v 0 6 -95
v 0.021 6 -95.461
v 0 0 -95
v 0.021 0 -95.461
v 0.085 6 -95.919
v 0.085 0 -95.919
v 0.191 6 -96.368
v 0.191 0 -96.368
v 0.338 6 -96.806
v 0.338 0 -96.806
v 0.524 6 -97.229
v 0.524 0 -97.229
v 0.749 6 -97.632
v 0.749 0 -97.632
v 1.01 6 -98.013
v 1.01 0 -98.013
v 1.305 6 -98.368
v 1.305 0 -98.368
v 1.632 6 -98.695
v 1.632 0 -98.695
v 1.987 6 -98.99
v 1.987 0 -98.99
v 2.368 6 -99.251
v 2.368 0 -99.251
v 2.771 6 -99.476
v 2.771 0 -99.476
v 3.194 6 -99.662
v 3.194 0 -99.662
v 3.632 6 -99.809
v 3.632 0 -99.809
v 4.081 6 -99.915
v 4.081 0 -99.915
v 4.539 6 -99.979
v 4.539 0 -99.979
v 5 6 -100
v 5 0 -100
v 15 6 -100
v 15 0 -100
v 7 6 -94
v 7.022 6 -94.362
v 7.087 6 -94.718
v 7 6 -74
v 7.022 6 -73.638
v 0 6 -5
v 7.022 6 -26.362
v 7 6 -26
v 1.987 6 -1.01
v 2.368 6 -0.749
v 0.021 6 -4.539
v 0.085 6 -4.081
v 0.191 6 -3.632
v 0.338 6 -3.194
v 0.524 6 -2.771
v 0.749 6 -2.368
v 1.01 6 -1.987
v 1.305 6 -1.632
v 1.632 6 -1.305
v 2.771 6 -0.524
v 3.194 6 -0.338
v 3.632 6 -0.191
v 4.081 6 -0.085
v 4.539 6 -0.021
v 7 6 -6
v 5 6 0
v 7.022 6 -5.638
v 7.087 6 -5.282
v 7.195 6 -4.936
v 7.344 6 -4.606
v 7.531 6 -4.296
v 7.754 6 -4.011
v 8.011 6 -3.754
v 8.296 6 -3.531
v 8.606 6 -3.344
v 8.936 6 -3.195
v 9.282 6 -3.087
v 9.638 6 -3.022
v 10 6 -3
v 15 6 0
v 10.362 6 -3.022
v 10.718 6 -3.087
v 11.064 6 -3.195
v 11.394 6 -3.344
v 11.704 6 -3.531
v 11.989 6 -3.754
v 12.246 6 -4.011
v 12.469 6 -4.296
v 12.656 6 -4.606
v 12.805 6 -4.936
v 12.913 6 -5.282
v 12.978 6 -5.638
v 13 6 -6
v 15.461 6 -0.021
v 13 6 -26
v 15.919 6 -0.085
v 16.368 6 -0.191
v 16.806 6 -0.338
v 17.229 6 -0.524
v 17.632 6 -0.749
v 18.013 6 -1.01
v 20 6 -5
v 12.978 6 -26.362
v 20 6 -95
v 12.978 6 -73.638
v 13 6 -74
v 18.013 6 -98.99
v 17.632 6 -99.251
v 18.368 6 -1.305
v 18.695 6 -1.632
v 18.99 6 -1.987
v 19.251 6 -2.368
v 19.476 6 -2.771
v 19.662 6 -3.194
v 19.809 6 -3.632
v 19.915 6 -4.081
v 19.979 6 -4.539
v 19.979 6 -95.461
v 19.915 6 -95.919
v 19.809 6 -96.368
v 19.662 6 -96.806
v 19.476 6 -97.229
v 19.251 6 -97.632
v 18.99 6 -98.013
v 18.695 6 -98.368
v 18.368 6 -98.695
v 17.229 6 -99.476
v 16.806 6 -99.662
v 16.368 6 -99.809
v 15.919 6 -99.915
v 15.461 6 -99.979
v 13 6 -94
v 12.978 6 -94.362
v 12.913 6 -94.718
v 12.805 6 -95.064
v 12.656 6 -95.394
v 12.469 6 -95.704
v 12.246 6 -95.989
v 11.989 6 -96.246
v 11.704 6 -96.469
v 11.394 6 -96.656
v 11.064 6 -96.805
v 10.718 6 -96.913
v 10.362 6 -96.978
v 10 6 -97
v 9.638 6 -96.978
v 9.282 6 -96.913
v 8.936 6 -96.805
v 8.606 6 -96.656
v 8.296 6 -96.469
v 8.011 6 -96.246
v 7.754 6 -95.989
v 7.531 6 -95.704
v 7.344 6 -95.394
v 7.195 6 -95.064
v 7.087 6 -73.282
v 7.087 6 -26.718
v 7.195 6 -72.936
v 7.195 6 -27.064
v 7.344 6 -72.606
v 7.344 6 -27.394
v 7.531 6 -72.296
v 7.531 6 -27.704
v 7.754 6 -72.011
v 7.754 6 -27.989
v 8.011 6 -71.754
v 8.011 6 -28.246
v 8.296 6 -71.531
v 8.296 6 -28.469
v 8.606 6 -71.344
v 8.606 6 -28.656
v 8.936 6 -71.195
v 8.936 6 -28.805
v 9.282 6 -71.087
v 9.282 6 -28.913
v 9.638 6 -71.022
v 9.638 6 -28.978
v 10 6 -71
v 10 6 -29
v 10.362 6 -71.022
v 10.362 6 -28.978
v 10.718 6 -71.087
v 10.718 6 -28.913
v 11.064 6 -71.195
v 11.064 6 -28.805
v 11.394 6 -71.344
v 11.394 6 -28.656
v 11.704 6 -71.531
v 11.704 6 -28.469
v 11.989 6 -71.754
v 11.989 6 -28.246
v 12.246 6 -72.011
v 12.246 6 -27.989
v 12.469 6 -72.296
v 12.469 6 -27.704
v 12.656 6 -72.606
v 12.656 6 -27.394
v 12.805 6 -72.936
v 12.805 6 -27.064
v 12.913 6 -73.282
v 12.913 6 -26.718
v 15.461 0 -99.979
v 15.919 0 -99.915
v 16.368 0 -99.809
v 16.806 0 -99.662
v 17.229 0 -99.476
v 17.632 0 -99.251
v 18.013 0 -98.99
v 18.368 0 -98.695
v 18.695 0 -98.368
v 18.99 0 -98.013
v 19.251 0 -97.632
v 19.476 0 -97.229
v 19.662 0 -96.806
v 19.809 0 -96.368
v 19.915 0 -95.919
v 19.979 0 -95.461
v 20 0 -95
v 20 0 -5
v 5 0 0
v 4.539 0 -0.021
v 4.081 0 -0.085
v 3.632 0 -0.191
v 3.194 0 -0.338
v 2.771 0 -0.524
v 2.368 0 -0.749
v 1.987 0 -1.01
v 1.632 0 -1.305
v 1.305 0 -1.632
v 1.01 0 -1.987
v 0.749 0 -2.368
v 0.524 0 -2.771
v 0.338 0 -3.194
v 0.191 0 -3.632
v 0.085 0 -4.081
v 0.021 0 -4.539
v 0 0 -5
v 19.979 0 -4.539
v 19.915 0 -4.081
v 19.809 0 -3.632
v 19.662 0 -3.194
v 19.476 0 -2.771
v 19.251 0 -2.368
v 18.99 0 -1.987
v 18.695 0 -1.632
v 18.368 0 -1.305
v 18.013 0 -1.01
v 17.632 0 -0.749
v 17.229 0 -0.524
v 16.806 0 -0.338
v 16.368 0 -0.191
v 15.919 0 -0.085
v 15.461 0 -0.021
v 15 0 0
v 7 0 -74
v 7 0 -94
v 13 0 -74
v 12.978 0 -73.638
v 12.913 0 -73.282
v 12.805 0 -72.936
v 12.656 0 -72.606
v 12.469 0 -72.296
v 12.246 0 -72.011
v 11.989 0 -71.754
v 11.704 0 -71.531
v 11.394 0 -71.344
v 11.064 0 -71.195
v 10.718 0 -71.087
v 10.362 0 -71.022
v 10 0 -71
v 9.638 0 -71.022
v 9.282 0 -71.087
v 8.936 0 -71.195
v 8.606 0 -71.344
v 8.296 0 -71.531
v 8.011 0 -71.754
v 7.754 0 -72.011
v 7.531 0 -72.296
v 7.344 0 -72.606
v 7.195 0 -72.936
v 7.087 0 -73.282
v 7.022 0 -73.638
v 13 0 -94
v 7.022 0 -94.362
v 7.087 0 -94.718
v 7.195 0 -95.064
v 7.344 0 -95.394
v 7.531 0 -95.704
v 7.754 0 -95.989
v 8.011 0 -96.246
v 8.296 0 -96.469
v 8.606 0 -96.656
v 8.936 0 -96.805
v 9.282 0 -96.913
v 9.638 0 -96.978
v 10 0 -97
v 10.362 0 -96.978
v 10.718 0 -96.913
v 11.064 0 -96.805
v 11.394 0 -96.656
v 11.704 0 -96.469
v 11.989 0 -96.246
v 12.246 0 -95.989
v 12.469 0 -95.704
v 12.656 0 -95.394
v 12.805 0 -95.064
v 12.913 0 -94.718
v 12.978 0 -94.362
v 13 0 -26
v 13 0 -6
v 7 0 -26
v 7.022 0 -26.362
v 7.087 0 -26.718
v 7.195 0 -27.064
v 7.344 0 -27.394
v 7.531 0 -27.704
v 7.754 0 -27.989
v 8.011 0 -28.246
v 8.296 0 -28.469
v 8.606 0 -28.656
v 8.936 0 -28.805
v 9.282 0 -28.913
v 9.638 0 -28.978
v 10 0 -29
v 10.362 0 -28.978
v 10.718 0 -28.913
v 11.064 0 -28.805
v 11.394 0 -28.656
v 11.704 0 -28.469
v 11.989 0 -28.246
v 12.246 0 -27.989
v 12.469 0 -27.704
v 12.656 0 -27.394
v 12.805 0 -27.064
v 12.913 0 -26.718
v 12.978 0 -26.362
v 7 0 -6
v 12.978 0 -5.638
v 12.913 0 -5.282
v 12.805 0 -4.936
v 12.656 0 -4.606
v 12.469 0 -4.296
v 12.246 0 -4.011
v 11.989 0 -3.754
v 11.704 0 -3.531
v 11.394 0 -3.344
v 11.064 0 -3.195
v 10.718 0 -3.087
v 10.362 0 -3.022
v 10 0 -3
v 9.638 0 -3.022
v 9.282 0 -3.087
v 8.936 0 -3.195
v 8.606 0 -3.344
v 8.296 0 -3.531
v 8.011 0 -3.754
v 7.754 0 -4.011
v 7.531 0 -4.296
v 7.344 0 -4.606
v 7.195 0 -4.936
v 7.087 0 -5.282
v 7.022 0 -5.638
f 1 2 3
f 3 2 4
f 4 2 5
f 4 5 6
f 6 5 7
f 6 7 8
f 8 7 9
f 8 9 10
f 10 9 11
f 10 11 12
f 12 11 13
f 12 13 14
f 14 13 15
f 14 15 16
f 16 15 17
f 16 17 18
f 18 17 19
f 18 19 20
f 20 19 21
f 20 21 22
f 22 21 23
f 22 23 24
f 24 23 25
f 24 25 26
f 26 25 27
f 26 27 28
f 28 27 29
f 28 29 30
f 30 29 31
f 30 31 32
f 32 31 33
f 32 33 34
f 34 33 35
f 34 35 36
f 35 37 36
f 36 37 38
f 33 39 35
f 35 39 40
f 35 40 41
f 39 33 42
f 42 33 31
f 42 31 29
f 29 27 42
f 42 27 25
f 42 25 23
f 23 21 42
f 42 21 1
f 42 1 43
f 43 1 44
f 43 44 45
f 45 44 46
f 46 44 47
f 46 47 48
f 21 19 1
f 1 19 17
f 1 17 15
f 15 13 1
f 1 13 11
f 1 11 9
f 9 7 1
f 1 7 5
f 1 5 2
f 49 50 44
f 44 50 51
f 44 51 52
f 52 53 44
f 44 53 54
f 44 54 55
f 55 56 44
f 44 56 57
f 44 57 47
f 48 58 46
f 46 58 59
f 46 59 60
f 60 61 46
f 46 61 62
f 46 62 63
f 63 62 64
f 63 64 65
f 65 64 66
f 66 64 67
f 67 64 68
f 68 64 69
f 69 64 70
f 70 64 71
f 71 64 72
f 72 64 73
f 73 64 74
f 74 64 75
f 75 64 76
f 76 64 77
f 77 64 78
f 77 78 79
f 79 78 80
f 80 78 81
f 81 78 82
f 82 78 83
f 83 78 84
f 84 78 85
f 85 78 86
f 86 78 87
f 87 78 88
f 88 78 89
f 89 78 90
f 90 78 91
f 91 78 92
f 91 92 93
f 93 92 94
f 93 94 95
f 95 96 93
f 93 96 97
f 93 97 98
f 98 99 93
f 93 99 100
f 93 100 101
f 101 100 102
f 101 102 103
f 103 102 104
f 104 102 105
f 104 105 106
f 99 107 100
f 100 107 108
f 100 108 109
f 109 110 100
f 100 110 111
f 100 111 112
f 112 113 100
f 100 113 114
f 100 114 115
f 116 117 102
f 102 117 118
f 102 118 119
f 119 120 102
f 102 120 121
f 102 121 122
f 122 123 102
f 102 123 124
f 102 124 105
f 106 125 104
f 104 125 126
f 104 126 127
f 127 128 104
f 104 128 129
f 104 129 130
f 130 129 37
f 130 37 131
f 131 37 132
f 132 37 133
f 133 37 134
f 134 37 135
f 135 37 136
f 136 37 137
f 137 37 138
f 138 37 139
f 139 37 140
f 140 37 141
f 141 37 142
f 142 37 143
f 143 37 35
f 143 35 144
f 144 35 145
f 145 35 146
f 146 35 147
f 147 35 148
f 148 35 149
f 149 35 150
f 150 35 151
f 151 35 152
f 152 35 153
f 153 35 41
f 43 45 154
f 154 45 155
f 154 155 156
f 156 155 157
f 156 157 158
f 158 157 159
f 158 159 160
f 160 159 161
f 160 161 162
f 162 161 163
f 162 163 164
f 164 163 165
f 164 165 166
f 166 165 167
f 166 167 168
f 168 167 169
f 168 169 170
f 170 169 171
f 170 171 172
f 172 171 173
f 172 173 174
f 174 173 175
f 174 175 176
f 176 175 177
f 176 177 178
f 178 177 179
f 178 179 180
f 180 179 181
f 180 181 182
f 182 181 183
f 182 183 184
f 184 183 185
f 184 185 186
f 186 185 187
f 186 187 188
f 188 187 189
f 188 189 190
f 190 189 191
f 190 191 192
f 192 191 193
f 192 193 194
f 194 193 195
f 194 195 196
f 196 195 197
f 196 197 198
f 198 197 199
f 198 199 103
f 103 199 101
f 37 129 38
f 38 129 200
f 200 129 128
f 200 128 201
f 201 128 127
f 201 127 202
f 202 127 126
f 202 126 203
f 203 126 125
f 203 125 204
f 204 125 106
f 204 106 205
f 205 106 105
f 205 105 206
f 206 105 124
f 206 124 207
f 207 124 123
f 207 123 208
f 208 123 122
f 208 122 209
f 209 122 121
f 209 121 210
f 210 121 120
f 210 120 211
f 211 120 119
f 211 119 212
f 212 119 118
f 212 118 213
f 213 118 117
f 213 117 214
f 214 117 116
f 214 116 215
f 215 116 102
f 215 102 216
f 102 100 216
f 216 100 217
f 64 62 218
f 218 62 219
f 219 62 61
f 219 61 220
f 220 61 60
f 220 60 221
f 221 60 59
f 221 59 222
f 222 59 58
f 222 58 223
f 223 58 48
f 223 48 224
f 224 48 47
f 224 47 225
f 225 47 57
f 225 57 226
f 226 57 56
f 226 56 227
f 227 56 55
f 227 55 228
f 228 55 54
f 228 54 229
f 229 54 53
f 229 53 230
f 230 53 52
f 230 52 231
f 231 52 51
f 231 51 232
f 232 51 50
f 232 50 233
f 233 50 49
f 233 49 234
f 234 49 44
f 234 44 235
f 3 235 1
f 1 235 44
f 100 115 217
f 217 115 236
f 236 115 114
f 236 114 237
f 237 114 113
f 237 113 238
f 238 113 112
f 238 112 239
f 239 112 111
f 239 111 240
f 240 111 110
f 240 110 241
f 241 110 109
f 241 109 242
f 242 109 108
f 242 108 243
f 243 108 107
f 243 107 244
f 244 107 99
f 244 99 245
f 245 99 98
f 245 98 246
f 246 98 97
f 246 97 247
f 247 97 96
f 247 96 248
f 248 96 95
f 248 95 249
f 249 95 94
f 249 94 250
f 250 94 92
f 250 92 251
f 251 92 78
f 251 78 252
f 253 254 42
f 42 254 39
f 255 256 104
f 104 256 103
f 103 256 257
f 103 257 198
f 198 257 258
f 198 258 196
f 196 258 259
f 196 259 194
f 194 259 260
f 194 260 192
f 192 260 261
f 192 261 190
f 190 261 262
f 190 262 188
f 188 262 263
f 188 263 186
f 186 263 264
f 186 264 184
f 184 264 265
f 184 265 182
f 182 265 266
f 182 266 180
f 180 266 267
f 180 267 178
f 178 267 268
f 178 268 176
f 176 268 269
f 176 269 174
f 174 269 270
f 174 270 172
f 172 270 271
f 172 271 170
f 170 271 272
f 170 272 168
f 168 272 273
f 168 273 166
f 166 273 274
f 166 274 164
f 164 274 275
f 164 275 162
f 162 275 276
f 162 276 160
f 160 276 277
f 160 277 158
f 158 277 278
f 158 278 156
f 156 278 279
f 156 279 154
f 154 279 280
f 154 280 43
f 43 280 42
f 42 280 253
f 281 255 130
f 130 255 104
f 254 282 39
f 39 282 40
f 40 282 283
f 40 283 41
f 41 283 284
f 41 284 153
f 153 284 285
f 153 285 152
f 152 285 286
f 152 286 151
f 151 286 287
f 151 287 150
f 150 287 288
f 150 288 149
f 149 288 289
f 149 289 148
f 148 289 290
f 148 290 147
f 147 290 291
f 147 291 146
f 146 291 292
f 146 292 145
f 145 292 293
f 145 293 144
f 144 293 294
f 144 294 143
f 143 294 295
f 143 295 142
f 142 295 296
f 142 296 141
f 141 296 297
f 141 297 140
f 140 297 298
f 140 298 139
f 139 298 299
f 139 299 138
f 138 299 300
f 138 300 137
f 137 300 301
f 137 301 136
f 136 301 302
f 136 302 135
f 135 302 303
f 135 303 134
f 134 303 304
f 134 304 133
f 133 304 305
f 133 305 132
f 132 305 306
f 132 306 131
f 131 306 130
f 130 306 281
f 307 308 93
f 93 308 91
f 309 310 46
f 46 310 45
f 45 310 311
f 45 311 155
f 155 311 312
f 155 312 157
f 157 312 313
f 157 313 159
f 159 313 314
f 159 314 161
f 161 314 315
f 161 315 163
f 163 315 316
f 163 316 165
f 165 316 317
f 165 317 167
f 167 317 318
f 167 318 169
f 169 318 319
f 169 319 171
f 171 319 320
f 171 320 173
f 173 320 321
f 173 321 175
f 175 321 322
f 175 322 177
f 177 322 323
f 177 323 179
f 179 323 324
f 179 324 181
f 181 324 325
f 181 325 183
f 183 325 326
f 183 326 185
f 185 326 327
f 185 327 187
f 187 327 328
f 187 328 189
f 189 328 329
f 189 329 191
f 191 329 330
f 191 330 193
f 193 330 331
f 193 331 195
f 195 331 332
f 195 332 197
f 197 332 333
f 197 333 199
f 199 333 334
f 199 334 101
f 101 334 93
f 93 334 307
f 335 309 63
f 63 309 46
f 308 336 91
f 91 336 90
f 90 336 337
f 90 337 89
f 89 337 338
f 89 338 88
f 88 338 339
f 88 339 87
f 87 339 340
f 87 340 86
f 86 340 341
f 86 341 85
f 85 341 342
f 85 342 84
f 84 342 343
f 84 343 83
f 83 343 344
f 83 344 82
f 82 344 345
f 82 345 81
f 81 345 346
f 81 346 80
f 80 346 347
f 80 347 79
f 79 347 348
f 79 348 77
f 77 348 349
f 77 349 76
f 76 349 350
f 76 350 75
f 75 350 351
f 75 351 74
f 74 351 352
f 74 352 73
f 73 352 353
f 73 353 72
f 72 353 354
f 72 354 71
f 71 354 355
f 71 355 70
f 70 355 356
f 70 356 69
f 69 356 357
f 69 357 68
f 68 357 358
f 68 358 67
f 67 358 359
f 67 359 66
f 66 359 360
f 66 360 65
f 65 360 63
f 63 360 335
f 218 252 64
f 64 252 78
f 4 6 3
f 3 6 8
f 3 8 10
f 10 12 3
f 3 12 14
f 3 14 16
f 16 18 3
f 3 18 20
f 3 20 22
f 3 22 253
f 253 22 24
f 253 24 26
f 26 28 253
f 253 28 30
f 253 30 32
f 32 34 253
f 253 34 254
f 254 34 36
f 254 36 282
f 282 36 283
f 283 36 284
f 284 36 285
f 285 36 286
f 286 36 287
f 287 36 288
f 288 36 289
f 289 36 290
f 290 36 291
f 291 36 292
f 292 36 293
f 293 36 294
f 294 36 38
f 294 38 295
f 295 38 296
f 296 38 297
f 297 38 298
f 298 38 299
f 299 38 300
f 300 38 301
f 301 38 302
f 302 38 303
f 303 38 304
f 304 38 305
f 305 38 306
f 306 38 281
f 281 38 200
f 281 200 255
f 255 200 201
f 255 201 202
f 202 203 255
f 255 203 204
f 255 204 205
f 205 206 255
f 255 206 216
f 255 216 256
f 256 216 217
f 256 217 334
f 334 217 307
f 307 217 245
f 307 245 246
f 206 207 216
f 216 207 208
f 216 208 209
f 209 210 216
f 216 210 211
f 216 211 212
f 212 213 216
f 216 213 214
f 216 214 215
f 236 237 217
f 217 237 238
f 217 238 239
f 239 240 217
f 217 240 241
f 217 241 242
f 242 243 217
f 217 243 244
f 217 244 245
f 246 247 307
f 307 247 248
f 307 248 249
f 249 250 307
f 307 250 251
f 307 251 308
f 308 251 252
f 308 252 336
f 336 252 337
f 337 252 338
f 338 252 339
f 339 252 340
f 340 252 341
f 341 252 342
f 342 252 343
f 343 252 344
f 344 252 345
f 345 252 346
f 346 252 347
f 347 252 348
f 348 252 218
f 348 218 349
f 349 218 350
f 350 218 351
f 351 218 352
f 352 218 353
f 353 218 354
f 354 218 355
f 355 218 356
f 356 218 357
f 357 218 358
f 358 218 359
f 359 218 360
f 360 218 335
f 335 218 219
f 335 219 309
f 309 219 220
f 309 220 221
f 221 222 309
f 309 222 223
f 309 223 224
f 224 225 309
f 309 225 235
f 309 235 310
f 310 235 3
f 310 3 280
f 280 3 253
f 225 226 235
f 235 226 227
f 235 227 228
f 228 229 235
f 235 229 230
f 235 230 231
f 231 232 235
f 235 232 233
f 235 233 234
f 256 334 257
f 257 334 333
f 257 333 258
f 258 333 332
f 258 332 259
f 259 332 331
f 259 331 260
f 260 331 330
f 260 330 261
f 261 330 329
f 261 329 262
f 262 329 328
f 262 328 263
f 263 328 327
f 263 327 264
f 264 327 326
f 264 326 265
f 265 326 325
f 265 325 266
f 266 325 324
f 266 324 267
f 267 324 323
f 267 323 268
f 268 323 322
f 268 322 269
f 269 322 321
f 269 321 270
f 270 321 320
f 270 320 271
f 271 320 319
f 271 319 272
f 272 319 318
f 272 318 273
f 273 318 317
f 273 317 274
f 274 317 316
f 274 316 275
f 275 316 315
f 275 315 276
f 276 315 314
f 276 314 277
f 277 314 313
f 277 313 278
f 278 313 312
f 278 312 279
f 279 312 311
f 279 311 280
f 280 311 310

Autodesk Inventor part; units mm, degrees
ref_plane "YZ Plane" through (0, 0, 0) normal (1, 0, 0) x (0, 1, 0)
ref_plane "XZ Plane" through (0, 0, 0) normal (0, 1, 0) x (-1, 0, 0)
ref_plane "XY Plane" through (0, 0, 0) normal (0, 0, 1) x (1, 0, 0)
sketch "Sketch1" plane through (0, 0, 0) normal (0, 1, 0) x (-1, 0, 0)
  line L0 (0, 0) -> (-20, 0)
  line L1 (-20, 0) -> (-20, -100)
  line L2 (-20, -100) -> (0, -100)
  line L3 (0, -100) -> (0, 0)
  line L4 (-10, 0) -> (-10, -6)
  line L5 (-10, -6) -> (60, -6) construction
  line L6 (-10, -6) -> (-10, -26) construction
  line L7 (-13, -6) -> (-13, -26)
  line L8 (-7, -26) -> (-7, -6)
  arc A0 (-7, -6) -> (-13, -6) centre (-10, -6) ccw
  arc A1 (-13, -26) -> (-7, -26) centre (-10, -26) ccw
  line L9 (-10, -100) -> (-10, -94)
  line L10 (-10, -94) -> (-10, -74) construction
  line L11 (-7, -94) -> (-7, -74)
  line L12 (-13, -74) -> (-13, -94)
  arc A2 (-13, -94) -> (-7, -94) centre (-10, -94) ccw
  arc A3 (-7, -74) -> (-13, -74) centre (-10, -74) ccw
  point P0 (-10, -16)
  point P1 (-10, -84)
  dimension "d0" = 20
  dimension "d1" = 100
  dimension "d2" = 6
  dimension "d9" = 20
  dimension "d10" = 6
  dimension "d11" = 6
  dimension "d12" = 20
  dimension "d13" = 6
extrude "Extrusion1" add sketch "Sketch1" along normal blind 6
fillet "Fillet1" radius 5 4 edges at (20, 3, 0) (0, 3, 0) (20, 3, -100) (0, 3, -100)
properties part number "Carriage_Horizontal_Spacer"
